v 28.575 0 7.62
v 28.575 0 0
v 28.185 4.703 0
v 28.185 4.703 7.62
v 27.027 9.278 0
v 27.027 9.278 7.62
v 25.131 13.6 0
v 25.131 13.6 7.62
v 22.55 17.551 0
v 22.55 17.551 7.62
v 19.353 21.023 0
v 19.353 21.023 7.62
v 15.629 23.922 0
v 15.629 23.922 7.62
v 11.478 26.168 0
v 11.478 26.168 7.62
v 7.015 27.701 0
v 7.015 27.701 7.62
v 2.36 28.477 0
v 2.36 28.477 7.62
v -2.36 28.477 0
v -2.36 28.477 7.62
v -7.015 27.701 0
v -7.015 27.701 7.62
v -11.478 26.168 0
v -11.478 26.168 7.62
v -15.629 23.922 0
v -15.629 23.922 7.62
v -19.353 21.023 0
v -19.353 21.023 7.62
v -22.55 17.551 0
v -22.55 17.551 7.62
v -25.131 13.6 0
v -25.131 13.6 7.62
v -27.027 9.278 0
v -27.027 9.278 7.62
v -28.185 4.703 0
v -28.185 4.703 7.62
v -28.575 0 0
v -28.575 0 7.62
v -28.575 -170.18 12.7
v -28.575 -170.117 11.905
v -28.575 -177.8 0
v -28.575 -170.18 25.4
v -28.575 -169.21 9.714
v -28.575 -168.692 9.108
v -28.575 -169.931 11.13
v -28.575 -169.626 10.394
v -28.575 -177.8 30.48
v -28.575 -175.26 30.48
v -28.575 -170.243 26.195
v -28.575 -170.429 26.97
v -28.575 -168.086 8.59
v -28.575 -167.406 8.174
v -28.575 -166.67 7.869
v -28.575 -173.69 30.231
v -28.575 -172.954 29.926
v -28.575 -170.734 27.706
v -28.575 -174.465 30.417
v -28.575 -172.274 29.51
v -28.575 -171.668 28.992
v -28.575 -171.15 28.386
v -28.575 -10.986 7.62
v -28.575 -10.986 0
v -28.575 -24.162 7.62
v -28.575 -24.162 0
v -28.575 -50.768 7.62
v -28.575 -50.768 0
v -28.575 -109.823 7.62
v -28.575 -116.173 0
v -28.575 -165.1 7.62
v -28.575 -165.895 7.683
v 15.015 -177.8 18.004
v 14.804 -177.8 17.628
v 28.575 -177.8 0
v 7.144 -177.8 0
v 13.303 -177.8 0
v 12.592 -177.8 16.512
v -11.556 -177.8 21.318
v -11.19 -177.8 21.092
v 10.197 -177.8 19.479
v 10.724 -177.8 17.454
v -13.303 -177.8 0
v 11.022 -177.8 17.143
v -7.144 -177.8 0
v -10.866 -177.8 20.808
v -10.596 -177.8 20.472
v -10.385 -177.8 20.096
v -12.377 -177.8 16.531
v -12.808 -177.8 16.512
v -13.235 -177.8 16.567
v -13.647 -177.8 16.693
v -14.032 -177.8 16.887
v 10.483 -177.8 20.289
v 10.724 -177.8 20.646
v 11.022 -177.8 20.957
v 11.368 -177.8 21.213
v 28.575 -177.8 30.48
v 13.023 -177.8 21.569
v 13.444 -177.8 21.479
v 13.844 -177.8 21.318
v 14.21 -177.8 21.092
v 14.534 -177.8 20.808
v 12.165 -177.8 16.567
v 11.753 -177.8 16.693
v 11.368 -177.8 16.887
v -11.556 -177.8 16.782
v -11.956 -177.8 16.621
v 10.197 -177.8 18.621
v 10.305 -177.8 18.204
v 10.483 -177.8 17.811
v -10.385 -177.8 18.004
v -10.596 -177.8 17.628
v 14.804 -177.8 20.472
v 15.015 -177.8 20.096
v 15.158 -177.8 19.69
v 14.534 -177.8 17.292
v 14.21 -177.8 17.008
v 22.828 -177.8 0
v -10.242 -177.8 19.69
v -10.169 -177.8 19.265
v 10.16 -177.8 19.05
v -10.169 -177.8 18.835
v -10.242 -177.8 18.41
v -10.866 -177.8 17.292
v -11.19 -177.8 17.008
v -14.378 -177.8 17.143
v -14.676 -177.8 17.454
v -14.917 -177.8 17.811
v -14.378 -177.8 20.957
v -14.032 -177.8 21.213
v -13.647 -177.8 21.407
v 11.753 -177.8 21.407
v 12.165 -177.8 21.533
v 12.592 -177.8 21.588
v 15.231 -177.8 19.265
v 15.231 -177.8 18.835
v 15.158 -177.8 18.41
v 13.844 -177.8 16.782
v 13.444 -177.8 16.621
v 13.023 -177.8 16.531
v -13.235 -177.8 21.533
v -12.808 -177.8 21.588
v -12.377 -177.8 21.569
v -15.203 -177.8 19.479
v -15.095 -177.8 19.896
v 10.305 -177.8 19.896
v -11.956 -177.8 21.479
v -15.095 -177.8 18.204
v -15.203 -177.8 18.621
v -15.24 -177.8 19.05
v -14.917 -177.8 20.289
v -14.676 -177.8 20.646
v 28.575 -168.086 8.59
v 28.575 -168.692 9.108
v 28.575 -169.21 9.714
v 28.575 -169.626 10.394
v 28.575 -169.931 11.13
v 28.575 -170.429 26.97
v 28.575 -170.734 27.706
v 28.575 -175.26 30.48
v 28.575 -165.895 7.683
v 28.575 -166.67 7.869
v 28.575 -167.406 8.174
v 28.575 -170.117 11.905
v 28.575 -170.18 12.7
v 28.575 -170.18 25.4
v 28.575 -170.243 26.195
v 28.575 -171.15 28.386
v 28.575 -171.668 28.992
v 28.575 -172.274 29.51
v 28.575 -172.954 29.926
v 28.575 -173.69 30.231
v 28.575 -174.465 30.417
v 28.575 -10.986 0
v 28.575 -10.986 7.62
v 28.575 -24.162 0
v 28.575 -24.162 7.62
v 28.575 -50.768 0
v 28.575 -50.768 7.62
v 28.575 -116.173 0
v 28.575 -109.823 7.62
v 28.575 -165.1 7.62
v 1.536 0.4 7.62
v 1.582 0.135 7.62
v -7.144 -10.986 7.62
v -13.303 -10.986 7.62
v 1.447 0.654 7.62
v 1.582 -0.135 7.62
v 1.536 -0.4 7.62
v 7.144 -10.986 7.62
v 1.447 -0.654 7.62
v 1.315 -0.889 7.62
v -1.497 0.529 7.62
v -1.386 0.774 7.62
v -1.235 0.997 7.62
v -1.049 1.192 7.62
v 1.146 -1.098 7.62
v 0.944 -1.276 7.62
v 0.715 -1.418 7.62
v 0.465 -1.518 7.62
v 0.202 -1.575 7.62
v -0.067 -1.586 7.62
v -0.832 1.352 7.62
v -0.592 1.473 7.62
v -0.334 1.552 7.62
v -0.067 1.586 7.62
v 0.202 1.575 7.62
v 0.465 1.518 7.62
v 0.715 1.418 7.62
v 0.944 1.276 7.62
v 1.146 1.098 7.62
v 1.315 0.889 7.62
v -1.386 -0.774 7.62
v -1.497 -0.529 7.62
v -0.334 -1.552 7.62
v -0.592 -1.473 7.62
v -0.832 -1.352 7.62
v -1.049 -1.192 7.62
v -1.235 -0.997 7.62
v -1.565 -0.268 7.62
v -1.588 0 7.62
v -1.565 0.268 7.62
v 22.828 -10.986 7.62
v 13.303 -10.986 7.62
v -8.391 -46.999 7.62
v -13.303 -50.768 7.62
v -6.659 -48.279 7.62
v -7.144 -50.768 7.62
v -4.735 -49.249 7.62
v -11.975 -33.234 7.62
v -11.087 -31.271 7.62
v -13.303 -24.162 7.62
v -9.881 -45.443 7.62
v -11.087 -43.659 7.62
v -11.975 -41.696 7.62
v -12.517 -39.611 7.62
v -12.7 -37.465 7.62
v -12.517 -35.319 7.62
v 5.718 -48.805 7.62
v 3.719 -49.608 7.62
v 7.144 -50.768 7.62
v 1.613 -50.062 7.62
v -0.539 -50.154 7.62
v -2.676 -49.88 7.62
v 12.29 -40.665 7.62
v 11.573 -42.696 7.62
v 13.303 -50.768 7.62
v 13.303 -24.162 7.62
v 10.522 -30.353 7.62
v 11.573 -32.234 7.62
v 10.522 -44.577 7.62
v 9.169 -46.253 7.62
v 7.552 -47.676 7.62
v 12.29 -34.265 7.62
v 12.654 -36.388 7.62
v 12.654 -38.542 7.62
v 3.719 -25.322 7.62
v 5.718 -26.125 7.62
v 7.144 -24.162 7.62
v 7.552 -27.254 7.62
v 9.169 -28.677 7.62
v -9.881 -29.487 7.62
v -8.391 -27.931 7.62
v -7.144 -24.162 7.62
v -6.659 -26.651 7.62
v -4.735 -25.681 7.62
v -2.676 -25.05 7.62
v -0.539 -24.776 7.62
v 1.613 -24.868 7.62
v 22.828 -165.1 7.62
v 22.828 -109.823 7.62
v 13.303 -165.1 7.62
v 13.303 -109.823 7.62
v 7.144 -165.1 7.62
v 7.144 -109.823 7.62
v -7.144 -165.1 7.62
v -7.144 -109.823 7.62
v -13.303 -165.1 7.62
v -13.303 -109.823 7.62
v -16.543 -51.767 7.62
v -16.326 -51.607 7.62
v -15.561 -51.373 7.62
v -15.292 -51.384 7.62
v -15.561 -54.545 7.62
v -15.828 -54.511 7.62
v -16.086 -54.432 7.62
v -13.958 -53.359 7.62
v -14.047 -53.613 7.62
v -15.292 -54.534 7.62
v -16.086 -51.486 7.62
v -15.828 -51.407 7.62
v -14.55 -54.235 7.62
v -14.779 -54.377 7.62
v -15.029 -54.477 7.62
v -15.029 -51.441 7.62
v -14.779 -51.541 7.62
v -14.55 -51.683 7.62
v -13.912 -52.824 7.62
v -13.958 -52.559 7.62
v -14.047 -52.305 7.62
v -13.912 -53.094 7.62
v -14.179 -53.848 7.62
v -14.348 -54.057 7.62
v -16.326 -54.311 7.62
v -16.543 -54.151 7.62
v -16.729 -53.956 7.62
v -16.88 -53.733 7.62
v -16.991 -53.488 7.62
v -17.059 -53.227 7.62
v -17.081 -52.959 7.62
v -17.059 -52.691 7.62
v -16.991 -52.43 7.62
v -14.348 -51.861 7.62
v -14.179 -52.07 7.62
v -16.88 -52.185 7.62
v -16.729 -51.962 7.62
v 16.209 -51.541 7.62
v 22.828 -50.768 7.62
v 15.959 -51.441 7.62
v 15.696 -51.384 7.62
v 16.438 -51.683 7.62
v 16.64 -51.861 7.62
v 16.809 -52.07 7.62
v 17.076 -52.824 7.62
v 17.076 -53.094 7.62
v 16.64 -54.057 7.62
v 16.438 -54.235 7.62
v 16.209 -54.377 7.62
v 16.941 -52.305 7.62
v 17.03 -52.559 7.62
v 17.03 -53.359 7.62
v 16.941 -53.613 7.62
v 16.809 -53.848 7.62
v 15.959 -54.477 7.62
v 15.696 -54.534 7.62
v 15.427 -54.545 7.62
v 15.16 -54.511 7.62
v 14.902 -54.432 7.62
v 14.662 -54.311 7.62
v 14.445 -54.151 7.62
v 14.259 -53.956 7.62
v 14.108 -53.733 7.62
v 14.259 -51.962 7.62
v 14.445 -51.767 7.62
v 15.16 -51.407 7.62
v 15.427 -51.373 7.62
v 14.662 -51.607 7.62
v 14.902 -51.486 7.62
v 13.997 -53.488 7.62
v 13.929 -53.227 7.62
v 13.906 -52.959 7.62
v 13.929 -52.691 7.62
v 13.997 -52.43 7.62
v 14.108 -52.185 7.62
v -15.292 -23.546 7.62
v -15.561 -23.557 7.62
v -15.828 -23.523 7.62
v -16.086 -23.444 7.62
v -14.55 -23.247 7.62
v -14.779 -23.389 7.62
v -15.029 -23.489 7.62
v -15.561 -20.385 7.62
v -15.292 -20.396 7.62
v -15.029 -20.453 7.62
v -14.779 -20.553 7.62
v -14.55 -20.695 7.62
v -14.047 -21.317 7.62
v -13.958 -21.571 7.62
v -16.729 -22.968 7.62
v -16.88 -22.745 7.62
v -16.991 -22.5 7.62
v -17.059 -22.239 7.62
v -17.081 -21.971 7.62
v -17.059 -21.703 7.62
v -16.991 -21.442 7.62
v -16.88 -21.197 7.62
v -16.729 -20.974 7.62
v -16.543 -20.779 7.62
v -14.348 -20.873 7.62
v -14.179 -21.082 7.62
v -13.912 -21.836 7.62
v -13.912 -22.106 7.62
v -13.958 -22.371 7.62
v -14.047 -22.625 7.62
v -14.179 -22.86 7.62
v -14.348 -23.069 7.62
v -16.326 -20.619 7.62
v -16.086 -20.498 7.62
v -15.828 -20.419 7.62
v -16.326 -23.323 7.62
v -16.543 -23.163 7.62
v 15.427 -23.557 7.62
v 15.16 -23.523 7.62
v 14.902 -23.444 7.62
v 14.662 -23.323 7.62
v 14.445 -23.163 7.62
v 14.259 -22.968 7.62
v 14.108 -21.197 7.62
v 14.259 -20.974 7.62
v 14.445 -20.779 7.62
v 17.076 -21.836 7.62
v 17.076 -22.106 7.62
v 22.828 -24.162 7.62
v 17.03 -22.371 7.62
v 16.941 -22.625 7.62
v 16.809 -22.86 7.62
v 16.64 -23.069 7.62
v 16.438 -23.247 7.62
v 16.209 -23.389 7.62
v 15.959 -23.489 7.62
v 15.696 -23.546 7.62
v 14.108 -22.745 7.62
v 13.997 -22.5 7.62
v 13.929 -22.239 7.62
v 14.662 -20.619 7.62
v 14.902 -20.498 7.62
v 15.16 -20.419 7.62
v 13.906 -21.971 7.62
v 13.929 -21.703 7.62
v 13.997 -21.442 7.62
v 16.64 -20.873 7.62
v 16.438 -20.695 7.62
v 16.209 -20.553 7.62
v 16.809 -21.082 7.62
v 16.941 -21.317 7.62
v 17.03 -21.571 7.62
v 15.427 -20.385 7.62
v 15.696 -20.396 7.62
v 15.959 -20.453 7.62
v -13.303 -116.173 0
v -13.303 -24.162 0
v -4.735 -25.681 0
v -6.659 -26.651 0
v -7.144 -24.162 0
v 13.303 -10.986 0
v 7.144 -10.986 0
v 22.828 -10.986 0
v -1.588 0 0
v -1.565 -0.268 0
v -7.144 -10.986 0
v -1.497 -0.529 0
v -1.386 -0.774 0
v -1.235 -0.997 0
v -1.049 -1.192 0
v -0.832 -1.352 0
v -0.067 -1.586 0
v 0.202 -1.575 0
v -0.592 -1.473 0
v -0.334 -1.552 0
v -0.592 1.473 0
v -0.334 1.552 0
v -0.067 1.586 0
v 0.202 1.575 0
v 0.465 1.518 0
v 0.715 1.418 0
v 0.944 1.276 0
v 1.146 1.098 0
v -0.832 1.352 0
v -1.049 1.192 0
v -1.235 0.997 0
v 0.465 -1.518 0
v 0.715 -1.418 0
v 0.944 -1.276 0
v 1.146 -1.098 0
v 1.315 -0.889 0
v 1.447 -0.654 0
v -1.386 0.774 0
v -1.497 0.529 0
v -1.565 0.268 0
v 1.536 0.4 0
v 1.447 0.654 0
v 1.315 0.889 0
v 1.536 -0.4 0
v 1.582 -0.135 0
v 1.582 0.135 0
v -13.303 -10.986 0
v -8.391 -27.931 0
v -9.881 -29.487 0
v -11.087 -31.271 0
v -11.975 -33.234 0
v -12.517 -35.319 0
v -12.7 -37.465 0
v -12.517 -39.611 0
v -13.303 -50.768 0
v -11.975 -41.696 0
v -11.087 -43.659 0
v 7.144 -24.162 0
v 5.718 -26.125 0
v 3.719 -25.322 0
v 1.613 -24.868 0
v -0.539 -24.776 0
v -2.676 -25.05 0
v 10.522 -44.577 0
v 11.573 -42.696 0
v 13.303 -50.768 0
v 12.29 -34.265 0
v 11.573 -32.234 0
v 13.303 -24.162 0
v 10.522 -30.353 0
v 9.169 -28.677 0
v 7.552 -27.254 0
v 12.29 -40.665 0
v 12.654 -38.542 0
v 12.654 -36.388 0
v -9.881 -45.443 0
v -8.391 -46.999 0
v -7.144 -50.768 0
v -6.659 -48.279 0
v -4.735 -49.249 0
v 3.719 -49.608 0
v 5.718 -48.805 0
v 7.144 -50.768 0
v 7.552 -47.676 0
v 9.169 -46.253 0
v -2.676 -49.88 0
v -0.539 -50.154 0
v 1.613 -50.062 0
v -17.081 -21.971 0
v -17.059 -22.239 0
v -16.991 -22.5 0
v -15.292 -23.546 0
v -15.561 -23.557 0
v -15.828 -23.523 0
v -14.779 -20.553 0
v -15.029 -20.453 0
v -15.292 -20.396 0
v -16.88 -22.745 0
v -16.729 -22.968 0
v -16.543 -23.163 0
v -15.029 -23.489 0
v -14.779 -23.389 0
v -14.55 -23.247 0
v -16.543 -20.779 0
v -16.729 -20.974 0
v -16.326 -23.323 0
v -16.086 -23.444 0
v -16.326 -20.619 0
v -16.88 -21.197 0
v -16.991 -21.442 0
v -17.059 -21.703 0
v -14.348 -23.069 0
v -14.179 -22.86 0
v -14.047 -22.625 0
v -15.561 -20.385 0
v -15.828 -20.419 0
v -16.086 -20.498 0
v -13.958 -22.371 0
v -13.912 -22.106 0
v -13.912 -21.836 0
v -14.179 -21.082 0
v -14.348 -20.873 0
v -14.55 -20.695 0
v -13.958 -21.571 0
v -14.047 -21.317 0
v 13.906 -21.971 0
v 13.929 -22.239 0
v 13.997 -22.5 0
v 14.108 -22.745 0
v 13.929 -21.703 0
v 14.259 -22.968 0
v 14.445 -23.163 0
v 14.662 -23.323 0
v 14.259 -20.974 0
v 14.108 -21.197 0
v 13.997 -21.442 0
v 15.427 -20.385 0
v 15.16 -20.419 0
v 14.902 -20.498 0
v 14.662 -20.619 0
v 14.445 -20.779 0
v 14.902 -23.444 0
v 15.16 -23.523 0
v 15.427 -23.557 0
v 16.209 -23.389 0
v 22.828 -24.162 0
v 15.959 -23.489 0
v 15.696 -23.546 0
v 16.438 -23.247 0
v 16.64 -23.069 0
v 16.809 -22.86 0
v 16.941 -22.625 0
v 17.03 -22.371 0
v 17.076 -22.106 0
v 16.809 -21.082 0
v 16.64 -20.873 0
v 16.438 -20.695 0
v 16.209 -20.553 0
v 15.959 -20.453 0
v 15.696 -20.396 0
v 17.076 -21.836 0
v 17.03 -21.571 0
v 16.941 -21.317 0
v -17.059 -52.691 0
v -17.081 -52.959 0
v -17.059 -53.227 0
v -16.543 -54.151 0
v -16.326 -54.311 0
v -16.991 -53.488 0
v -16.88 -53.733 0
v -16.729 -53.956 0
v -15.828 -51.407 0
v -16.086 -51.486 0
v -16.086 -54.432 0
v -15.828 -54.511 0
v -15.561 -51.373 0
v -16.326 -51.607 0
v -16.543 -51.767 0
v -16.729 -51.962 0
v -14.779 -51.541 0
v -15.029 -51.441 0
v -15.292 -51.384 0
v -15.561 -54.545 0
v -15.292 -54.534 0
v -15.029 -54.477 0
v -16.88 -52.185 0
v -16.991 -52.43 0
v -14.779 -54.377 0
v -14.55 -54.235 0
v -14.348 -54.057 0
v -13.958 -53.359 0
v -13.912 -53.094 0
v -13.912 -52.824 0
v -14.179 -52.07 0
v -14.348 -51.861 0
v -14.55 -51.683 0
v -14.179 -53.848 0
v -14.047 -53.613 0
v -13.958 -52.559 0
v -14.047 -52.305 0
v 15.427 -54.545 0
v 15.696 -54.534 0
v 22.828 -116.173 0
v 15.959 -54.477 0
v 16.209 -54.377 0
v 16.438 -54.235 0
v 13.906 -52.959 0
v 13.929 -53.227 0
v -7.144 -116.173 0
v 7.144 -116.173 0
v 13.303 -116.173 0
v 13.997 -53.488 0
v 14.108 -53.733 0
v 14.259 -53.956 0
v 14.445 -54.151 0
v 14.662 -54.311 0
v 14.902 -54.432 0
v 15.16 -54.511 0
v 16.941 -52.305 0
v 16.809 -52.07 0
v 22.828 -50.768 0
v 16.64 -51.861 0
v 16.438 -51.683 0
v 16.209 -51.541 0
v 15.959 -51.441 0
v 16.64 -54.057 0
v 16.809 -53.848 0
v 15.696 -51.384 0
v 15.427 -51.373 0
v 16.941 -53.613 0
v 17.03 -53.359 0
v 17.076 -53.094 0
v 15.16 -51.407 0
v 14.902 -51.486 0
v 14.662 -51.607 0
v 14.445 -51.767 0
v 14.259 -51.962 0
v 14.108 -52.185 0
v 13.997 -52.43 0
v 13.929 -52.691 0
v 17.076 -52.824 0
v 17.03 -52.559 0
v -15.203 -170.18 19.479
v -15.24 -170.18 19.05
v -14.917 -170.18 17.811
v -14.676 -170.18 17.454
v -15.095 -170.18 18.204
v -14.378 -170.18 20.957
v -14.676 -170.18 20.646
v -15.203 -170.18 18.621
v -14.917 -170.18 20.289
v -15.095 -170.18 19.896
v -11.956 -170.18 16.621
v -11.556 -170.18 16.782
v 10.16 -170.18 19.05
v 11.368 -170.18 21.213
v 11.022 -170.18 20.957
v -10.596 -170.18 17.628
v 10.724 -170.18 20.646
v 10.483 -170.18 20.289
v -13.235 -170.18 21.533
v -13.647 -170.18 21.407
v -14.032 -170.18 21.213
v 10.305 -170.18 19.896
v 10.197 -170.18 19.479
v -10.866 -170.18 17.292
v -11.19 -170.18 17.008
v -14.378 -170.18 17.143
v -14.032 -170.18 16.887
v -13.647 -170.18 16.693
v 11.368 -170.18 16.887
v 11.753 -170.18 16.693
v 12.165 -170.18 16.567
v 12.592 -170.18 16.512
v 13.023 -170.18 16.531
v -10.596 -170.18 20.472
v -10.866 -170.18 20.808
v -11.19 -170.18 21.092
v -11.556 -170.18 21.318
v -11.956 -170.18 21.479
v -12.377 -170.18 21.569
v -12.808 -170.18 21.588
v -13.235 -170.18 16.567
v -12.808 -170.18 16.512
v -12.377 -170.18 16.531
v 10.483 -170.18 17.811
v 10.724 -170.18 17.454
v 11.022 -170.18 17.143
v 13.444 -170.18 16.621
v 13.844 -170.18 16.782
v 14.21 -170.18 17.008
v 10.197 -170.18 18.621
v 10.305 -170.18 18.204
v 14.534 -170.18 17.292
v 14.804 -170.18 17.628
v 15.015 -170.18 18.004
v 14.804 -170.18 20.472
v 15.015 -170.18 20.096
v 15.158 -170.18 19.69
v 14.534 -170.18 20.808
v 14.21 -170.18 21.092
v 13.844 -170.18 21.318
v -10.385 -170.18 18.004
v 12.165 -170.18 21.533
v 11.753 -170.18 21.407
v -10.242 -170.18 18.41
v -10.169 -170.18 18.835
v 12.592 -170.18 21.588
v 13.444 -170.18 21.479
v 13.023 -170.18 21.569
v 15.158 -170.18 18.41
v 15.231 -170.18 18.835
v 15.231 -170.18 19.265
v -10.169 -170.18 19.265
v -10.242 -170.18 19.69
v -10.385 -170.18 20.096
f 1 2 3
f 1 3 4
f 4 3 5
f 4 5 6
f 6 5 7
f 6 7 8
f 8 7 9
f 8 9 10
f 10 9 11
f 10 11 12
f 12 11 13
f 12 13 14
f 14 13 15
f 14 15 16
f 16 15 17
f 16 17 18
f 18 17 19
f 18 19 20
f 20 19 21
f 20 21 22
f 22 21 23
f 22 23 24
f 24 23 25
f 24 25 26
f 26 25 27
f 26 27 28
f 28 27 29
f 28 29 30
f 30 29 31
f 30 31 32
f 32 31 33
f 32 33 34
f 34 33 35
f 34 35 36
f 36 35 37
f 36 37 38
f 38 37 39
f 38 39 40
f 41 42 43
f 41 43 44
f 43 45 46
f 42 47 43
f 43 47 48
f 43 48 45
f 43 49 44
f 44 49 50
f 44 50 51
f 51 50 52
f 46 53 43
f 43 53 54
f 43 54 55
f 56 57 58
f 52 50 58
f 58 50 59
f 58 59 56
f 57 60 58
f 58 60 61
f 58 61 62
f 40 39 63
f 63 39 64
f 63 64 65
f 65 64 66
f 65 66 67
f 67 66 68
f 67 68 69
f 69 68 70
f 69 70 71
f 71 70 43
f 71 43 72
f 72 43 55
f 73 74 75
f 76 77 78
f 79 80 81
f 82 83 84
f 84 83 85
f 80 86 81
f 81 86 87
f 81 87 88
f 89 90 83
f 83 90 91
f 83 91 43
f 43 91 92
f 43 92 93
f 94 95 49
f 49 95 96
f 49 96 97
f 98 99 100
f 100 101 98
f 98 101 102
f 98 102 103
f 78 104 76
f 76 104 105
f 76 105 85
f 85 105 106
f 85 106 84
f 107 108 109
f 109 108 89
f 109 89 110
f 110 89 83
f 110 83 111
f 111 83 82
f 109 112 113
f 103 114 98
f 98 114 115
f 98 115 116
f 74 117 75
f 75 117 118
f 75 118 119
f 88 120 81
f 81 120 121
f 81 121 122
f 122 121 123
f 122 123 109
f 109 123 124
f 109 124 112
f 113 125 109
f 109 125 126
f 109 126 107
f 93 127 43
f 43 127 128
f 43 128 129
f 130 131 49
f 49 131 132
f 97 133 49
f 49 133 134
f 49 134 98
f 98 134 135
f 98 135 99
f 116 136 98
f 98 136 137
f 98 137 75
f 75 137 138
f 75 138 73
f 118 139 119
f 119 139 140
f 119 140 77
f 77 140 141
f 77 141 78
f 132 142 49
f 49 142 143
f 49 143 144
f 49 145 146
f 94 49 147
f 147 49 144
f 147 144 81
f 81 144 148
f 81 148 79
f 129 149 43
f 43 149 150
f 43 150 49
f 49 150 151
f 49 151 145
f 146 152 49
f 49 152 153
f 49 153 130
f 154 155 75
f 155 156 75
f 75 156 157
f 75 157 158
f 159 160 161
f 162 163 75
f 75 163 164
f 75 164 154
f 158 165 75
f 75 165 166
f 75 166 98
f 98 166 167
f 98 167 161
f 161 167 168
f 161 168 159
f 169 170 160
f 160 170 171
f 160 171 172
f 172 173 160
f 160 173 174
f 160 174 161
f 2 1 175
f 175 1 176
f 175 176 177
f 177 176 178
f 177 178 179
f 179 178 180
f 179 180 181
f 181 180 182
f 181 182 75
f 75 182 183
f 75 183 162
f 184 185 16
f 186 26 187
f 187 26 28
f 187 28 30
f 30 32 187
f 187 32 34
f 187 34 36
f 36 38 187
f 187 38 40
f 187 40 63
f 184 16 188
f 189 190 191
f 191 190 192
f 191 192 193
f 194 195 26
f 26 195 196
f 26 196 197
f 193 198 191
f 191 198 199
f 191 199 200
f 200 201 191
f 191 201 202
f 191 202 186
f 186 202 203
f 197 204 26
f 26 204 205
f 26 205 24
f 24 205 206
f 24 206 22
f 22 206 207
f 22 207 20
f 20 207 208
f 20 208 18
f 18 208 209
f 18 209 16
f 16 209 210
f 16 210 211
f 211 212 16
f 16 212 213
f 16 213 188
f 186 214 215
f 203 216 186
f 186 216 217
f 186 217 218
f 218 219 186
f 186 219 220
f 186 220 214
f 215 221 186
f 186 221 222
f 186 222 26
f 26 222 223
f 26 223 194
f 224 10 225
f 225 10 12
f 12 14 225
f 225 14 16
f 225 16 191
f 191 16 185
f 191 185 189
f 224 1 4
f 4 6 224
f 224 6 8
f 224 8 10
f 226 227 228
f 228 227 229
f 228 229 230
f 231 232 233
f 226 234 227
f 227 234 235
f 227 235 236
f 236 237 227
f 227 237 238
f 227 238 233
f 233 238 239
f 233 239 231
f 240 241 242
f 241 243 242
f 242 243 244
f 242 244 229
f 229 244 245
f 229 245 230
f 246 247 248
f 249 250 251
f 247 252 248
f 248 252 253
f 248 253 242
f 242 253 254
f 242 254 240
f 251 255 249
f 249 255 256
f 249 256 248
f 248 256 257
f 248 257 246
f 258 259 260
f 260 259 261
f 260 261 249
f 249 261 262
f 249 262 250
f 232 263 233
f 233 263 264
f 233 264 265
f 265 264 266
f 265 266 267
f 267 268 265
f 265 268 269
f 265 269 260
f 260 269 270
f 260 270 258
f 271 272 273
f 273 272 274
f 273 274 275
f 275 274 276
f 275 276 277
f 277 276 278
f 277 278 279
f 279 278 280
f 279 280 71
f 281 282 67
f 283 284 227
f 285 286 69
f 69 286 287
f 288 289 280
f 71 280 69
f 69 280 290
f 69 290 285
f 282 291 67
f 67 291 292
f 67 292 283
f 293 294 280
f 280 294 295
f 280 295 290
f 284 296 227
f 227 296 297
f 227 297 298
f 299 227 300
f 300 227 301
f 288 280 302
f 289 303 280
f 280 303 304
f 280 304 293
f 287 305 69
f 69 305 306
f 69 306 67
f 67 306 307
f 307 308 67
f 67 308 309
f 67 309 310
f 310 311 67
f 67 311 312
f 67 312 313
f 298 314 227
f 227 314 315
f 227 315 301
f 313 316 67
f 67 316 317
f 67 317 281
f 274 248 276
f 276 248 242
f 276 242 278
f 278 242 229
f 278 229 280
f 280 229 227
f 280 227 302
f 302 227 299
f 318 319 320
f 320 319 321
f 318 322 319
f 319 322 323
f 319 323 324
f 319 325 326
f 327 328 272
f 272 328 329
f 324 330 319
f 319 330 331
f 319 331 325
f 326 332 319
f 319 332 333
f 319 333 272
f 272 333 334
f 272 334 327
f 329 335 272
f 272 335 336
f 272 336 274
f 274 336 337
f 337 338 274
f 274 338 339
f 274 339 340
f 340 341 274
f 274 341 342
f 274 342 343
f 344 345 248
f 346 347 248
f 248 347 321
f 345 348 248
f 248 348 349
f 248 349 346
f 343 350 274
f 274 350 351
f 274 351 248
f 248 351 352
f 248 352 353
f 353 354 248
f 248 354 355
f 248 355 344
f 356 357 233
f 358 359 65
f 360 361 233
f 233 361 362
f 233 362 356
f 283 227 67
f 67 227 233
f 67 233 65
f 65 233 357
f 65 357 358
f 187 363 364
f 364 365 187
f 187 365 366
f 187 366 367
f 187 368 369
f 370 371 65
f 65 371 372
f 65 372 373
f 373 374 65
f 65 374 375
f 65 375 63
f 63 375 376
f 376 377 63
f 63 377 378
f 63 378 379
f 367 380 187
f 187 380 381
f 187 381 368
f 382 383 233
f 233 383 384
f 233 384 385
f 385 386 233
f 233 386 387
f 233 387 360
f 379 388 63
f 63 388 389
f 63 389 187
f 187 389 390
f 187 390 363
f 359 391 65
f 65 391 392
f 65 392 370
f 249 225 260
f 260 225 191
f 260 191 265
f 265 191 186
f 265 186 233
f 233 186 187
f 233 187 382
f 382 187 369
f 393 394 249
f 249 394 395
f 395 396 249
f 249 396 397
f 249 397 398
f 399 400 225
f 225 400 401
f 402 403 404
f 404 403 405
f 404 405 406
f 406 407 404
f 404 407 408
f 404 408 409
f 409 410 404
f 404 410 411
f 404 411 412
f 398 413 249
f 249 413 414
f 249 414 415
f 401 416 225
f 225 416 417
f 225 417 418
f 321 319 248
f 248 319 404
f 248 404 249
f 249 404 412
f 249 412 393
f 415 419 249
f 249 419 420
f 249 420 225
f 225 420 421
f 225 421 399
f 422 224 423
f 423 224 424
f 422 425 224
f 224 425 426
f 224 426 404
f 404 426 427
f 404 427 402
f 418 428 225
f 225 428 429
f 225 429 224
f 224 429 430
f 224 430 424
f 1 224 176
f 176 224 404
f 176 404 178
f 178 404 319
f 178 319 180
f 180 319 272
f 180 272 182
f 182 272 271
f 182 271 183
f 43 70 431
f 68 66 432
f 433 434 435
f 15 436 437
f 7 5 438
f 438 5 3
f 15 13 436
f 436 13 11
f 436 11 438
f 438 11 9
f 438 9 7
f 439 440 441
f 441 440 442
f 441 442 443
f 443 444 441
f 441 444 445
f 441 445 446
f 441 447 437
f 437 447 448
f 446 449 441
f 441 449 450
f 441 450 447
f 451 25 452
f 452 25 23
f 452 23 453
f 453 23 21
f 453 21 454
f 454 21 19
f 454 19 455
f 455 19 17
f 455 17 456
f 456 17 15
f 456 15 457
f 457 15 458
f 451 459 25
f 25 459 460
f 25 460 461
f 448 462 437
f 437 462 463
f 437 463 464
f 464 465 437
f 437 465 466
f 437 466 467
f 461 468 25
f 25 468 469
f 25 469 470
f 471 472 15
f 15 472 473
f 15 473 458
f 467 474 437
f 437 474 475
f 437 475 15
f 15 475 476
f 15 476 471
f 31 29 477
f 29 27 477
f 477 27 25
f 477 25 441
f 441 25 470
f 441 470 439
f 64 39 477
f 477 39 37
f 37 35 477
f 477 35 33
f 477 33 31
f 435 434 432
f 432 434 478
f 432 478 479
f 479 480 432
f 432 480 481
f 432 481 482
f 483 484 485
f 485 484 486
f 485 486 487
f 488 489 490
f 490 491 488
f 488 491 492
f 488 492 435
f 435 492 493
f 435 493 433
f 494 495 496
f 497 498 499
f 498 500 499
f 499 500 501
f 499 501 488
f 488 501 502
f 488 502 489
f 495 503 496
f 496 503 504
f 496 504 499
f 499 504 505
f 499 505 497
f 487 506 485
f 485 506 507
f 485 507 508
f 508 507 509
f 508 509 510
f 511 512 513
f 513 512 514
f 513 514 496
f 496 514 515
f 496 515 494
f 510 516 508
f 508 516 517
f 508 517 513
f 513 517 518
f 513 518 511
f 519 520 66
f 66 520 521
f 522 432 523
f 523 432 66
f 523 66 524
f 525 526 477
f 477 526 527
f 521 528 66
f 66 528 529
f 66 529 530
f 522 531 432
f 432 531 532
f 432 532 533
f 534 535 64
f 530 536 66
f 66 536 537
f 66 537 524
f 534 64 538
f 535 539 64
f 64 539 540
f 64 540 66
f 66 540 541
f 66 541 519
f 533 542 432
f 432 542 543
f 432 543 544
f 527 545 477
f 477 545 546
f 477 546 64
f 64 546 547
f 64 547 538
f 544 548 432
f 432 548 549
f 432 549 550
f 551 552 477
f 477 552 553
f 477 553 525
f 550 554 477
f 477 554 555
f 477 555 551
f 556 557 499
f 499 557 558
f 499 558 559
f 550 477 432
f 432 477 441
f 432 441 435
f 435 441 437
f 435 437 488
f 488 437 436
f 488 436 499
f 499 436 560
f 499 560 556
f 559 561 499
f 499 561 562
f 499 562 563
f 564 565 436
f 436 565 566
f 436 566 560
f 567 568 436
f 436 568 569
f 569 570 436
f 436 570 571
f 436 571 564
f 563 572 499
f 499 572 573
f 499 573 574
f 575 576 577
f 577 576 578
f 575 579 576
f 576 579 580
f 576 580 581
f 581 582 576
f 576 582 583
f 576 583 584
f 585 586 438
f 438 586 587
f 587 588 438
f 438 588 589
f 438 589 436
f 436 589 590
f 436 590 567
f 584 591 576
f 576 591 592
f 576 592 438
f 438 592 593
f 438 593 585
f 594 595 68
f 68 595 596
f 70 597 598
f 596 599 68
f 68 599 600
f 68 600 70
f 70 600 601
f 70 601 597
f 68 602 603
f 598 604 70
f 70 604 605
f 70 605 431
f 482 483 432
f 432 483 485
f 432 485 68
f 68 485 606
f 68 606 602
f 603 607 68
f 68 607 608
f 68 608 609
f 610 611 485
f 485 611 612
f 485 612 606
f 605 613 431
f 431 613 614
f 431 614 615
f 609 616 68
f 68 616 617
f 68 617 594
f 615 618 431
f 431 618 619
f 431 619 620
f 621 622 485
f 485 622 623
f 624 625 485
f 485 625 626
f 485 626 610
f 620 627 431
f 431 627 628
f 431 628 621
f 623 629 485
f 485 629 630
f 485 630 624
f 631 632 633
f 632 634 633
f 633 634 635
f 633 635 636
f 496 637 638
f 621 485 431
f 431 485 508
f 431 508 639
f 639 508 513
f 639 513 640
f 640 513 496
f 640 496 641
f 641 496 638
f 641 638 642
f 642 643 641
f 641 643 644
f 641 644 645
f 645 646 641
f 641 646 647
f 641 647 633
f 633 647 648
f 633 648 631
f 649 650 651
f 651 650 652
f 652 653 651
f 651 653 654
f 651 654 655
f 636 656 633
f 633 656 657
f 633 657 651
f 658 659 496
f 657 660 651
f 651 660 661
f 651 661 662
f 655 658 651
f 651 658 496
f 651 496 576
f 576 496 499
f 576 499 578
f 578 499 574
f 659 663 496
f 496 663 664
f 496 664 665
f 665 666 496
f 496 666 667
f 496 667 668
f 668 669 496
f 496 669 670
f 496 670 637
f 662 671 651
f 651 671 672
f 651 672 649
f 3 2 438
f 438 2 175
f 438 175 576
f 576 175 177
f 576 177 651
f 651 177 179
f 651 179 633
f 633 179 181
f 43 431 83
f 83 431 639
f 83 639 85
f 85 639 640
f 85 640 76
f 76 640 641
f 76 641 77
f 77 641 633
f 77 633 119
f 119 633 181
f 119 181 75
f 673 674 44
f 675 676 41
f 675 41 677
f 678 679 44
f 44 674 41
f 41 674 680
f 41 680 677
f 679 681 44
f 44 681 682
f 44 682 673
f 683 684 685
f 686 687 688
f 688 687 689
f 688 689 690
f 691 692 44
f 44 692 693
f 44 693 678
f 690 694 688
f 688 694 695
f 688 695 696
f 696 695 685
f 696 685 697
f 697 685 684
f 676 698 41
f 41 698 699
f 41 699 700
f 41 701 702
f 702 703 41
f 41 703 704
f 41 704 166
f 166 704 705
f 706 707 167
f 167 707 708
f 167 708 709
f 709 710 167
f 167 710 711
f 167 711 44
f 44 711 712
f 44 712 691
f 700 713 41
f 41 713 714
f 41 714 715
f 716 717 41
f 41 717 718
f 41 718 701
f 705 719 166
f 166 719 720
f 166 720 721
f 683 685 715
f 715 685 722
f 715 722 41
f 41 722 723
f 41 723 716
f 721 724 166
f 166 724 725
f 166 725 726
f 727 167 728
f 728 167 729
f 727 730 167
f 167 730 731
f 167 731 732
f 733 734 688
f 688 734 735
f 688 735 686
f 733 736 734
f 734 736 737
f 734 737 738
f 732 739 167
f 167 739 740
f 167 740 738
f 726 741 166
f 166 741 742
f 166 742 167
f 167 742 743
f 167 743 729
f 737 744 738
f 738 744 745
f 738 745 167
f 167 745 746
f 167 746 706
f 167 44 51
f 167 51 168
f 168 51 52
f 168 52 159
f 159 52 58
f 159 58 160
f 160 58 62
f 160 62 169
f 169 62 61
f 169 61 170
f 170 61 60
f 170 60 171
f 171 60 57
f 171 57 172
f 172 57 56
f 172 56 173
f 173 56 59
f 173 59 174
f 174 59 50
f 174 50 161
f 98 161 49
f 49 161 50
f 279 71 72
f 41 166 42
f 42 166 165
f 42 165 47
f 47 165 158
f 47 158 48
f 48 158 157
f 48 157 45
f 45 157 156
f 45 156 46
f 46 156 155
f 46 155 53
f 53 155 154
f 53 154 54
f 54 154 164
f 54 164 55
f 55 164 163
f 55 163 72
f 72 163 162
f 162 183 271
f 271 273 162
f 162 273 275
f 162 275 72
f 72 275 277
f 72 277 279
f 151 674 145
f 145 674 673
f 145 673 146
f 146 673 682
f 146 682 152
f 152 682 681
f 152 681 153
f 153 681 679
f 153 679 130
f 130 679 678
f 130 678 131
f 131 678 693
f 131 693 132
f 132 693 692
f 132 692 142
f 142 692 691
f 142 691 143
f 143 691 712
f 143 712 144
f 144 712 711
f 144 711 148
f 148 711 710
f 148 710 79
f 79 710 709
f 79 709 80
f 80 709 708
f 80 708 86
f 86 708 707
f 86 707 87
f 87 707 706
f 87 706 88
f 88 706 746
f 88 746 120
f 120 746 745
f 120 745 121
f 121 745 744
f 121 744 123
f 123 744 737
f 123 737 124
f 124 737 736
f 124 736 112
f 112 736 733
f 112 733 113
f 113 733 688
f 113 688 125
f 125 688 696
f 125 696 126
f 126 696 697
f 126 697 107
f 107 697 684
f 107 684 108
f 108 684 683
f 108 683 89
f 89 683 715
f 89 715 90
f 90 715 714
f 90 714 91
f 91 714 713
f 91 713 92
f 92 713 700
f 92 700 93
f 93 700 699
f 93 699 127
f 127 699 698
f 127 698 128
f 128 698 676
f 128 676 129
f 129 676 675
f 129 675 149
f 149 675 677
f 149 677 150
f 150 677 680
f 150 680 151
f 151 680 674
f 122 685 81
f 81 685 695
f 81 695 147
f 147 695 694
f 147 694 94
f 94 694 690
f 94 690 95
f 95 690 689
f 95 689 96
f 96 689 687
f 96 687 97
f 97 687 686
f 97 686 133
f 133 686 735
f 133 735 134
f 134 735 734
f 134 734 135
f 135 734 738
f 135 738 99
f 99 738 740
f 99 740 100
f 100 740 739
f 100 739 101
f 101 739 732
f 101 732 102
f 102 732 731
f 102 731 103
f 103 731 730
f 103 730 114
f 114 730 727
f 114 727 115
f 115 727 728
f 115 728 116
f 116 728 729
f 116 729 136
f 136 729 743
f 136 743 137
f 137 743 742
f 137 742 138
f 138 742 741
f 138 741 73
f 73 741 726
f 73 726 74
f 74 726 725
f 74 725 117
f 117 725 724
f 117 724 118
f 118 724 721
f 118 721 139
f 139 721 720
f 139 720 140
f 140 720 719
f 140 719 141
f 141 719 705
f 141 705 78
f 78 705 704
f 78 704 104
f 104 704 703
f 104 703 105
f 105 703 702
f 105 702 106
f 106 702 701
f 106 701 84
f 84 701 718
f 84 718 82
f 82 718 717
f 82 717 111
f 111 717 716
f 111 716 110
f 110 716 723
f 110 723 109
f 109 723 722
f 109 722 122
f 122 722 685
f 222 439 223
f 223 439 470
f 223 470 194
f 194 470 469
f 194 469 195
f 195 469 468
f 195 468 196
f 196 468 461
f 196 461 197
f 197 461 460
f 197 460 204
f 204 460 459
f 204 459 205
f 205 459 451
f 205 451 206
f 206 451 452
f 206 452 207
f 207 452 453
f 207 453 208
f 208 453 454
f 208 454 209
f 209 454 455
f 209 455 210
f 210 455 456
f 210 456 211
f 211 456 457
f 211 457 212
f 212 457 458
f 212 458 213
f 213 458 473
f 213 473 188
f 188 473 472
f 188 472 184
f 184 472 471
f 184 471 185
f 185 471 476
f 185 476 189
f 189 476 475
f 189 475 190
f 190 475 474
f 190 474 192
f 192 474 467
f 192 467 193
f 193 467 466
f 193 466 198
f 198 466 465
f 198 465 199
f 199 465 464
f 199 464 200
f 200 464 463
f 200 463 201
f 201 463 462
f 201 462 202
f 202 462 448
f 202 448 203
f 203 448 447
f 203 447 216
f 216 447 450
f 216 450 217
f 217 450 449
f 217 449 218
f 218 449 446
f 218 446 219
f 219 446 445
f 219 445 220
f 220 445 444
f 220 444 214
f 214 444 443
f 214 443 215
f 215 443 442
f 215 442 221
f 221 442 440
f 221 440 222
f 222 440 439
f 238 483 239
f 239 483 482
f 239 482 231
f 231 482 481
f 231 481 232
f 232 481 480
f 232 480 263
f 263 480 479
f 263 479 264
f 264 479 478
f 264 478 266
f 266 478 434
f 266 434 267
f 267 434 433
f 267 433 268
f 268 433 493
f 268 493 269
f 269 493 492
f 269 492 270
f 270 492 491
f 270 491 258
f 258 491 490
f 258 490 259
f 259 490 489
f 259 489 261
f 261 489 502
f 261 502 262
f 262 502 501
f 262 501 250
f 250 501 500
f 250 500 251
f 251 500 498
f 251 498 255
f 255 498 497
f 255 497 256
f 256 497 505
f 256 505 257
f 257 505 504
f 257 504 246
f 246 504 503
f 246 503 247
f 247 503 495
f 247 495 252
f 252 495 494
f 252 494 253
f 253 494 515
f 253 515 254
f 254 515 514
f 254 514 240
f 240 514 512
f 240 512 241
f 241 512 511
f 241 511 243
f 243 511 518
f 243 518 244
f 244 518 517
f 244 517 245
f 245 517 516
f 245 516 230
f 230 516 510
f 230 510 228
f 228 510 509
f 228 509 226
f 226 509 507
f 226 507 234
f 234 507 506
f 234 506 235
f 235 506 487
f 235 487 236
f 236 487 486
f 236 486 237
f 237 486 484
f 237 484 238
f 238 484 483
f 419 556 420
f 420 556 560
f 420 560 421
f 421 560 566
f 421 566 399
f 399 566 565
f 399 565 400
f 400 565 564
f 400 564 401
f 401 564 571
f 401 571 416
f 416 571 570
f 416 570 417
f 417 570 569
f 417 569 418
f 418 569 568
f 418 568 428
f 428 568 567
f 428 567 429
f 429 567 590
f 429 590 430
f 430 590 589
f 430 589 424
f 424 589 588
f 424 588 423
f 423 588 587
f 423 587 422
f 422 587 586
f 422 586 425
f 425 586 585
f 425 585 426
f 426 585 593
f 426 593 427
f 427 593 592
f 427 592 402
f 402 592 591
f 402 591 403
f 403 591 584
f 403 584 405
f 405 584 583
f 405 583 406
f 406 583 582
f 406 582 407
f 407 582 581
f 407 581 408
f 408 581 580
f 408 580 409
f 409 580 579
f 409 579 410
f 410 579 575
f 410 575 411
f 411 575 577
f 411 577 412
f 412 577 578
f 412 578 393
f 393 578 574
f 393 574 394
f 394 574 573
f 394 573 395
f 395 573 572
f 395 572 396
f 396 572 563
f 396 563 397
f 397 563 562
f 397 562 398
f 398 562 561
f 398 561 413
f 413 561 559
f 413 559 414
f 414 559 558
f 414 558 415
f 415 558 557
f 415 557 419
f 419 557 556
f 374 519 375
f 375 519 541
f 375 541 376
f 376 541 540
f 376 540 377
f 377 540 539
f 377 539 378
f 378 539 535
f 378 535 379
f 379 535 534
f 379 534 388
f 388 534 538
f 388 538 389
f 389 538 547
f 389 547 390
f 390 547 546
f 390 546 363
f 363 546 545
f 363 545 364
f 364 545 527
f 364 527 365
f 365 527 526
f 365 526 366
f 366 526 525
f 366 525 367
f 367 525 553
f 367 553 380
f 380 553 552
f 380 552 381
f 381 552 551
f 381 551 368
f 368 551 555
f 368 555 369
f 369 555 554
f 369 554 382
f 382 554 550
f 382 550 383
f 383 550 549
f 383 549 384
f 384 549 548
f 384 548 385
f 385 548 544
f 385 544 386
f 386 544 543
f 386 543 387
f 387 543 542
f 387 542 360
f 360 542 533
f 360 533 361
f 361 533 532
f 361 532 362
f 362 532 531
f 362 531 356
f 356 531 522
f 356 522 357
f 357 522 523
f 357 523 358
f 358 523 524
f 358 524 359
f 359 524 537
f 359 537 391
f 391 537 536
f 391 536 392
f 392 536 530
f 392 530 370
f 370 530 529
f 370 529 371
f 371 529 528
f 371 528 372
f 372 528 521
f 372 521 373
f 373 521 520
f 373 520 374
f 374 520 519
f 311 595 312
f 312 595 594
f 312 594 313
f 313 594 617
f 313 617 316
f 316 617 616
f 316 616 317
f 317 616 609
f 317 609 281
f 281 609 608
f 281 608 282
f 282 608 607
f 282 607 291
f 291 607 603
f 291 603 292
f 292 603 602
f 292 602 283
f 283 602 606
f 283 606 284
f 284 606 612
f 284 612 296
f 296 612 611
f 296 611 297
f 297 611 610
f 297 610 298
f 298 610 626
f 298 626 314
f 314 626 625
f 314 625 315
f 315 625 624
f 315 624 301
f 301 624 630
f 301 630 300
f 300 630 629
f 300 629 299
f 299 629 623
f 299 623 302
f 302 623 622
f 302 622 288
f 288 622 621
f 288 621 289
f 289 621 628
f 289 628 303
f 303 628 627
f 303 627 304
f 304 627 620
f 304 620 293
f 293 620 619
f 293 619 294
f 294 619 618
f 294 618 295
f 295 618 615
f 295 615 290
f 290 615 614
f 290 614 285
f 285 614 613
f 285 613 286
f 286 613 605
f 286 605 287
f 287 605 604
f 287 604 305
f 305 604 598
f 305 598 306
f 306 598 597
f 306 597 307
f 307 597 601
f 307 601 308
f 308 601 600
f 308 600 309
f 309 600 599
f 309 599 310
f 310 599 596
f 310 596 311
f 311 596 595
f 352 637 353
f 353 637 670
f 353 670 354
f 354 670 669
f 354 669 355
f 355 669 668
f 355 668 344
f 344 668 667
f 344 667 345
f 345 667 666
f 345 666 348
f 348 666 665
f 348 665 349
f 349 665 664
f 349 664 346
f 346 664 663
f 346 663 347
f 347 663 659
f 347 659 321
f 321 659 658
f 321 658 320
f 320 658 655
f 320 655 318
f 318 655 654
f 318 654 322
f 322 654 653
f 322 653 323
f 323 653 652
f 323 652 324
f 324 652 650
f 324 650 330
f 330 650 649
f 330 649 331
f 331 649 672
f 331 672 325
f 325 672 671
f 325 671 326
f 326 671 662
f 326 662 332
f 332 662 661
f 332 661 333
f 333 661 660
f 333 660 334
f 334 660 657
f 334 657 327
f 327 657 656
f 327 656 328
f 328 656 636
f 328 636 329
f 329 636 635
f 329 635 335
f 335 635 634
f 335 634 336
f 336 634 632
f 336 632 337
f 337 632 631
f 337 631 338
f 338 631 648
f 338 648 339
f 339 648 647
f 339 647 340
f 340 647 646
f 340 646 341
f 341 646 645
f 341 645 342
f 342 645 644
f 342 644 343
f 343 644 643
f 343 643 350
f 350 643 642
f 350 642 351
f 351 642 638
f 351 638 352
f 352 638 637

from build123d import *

# Parameters (mm, degrees)
BOSS_EXTRUDE1_DEPTH = 7.62
BOSS_EXTRUDE2_DEPTH = 57.15
FILLET1_R           = 5.08
SKETCH3_R           = 2.54
CUT_EXTRUDE1_DEPTH  = 204.09877166
SKETCH4_R           = 1.5875
CUT_EXTRUDE2_DEPTH  = 183.642823634
SKETCH5_R           = 12.7
CUT_EXTRUDE3_DEPTH  = 183.642823634
SKETCH7_R           = 1.5875
CUT_EXTRUDE4_DEPTH  = 183.642823634


with BuildPart() as part:
    # Sketch1 → Boss-Extrude1 (new body)
    with BuildSketch(Plane.XY):
        with BuildLine():
            Line((-28.575, 0), (-28.575, -177.8))
            Line((-28.575, -177.8), (28.575, -177.8))
            Line((28.575, -177.8), (28.575, 0))
            ThreePointArc((28.575, 0), (0, 28.575), (-28.575, 0))
        make_face()
    extrude(amount=BOSS_EXTRUDE1_DEPTH)

    # Sketch2 → Boss-Extrude2 (add, through all)
    with BuildSketch(Plane.ZY.offset(28.575)):
        with BuildLine():
            Line((0, -177.8), (30.48, -177.8))
            Line((30.48, -177.8), (30.48, -175.26))
            ThreePointArc((30.48, -175.26), (28.992102448, -171.667897552), (25.4, -170.18))
            Line((25.4, -170.18), (0, -170.18))
            Line((0, -170.18), (0, -177.8))
        make_face()
    extrude(amount=-BOSS_EXTRUDE2_DEPTH)

    # Fillet1
    fillet1_edges = [part.edges().sort_by_distance(p)[0] for p in [
        (0, -170.18, 7.62),
    ]]
    fillet(fillet1_edges, radius=FILLET1_R)

    # Sketch3 → Cut-Extrude1 (cut, through all)
    with BuildSketch(Plane(origin=(0, -170.18, 0), x_dir=(1, 0, 0), z_dir=(0, 1, 0))):
        with Locations(Location((12.7, -19.05, 0), (0, 0, 180))):
            Circle(SKETCH3_R)
        with Locations(Location((-12.7, -19.05, 0), (0, 0, 180))):
            Circle(SKETCH3_R)
    extrude(amount=-CUT_EXTRUDE1_DEPTH, mode=Mode.SUBTRACT)

    # Sketch4 → Cut-Extrude2 (cut, through all)
    with BuildSketch(Plane(origin=(0, 0, 0), x_dir=(-1, 0, 0), z_dir=(0, 0, -1))):
        Circle(SKETCH4_R)
    extrude(amount=-CUT_EXTRUDE2_DEPTH, mode=Mode.SUBTRACT)

    # Sketch5 → Cut-Extrude3 (cut, through all)
    with BuildSketch(Plane(origin=(0, 0, 0), x_dir=(-1, 0, 0), z_dir=(0, 0, -1))):
        with Locations((0, -37.465)):
            Circle(SKETCH5_R)
    extrude(amount=-CUT_EXTRUDE3_DEPTH, mode=Mode.SUBTRACT)

    # Sketch7 → Cut-Extrude4 (cut, through all)
    with BuildSketch(Plane(origin=(0, 0, 0), x_dir=(-1, 0, 0), z_dir=(0, 0, -1))):
        with Locations((-15.494, -21.971)):
            Circle(SKETCH7_R)
        with Locations((15.494, -21.971)):
            Circle(SKETCH7_R)
        with Locations((15.494, -52.959)):
            Circle(SKETCH7_R)
        with Locations((-15.494, -52.959)):
            Circle(SKETCH7_R)
    extrude(amount=-CUT_EXTRUDE4_DEPTH, mode=Mode.SUBTRACT)


solid = part.part
